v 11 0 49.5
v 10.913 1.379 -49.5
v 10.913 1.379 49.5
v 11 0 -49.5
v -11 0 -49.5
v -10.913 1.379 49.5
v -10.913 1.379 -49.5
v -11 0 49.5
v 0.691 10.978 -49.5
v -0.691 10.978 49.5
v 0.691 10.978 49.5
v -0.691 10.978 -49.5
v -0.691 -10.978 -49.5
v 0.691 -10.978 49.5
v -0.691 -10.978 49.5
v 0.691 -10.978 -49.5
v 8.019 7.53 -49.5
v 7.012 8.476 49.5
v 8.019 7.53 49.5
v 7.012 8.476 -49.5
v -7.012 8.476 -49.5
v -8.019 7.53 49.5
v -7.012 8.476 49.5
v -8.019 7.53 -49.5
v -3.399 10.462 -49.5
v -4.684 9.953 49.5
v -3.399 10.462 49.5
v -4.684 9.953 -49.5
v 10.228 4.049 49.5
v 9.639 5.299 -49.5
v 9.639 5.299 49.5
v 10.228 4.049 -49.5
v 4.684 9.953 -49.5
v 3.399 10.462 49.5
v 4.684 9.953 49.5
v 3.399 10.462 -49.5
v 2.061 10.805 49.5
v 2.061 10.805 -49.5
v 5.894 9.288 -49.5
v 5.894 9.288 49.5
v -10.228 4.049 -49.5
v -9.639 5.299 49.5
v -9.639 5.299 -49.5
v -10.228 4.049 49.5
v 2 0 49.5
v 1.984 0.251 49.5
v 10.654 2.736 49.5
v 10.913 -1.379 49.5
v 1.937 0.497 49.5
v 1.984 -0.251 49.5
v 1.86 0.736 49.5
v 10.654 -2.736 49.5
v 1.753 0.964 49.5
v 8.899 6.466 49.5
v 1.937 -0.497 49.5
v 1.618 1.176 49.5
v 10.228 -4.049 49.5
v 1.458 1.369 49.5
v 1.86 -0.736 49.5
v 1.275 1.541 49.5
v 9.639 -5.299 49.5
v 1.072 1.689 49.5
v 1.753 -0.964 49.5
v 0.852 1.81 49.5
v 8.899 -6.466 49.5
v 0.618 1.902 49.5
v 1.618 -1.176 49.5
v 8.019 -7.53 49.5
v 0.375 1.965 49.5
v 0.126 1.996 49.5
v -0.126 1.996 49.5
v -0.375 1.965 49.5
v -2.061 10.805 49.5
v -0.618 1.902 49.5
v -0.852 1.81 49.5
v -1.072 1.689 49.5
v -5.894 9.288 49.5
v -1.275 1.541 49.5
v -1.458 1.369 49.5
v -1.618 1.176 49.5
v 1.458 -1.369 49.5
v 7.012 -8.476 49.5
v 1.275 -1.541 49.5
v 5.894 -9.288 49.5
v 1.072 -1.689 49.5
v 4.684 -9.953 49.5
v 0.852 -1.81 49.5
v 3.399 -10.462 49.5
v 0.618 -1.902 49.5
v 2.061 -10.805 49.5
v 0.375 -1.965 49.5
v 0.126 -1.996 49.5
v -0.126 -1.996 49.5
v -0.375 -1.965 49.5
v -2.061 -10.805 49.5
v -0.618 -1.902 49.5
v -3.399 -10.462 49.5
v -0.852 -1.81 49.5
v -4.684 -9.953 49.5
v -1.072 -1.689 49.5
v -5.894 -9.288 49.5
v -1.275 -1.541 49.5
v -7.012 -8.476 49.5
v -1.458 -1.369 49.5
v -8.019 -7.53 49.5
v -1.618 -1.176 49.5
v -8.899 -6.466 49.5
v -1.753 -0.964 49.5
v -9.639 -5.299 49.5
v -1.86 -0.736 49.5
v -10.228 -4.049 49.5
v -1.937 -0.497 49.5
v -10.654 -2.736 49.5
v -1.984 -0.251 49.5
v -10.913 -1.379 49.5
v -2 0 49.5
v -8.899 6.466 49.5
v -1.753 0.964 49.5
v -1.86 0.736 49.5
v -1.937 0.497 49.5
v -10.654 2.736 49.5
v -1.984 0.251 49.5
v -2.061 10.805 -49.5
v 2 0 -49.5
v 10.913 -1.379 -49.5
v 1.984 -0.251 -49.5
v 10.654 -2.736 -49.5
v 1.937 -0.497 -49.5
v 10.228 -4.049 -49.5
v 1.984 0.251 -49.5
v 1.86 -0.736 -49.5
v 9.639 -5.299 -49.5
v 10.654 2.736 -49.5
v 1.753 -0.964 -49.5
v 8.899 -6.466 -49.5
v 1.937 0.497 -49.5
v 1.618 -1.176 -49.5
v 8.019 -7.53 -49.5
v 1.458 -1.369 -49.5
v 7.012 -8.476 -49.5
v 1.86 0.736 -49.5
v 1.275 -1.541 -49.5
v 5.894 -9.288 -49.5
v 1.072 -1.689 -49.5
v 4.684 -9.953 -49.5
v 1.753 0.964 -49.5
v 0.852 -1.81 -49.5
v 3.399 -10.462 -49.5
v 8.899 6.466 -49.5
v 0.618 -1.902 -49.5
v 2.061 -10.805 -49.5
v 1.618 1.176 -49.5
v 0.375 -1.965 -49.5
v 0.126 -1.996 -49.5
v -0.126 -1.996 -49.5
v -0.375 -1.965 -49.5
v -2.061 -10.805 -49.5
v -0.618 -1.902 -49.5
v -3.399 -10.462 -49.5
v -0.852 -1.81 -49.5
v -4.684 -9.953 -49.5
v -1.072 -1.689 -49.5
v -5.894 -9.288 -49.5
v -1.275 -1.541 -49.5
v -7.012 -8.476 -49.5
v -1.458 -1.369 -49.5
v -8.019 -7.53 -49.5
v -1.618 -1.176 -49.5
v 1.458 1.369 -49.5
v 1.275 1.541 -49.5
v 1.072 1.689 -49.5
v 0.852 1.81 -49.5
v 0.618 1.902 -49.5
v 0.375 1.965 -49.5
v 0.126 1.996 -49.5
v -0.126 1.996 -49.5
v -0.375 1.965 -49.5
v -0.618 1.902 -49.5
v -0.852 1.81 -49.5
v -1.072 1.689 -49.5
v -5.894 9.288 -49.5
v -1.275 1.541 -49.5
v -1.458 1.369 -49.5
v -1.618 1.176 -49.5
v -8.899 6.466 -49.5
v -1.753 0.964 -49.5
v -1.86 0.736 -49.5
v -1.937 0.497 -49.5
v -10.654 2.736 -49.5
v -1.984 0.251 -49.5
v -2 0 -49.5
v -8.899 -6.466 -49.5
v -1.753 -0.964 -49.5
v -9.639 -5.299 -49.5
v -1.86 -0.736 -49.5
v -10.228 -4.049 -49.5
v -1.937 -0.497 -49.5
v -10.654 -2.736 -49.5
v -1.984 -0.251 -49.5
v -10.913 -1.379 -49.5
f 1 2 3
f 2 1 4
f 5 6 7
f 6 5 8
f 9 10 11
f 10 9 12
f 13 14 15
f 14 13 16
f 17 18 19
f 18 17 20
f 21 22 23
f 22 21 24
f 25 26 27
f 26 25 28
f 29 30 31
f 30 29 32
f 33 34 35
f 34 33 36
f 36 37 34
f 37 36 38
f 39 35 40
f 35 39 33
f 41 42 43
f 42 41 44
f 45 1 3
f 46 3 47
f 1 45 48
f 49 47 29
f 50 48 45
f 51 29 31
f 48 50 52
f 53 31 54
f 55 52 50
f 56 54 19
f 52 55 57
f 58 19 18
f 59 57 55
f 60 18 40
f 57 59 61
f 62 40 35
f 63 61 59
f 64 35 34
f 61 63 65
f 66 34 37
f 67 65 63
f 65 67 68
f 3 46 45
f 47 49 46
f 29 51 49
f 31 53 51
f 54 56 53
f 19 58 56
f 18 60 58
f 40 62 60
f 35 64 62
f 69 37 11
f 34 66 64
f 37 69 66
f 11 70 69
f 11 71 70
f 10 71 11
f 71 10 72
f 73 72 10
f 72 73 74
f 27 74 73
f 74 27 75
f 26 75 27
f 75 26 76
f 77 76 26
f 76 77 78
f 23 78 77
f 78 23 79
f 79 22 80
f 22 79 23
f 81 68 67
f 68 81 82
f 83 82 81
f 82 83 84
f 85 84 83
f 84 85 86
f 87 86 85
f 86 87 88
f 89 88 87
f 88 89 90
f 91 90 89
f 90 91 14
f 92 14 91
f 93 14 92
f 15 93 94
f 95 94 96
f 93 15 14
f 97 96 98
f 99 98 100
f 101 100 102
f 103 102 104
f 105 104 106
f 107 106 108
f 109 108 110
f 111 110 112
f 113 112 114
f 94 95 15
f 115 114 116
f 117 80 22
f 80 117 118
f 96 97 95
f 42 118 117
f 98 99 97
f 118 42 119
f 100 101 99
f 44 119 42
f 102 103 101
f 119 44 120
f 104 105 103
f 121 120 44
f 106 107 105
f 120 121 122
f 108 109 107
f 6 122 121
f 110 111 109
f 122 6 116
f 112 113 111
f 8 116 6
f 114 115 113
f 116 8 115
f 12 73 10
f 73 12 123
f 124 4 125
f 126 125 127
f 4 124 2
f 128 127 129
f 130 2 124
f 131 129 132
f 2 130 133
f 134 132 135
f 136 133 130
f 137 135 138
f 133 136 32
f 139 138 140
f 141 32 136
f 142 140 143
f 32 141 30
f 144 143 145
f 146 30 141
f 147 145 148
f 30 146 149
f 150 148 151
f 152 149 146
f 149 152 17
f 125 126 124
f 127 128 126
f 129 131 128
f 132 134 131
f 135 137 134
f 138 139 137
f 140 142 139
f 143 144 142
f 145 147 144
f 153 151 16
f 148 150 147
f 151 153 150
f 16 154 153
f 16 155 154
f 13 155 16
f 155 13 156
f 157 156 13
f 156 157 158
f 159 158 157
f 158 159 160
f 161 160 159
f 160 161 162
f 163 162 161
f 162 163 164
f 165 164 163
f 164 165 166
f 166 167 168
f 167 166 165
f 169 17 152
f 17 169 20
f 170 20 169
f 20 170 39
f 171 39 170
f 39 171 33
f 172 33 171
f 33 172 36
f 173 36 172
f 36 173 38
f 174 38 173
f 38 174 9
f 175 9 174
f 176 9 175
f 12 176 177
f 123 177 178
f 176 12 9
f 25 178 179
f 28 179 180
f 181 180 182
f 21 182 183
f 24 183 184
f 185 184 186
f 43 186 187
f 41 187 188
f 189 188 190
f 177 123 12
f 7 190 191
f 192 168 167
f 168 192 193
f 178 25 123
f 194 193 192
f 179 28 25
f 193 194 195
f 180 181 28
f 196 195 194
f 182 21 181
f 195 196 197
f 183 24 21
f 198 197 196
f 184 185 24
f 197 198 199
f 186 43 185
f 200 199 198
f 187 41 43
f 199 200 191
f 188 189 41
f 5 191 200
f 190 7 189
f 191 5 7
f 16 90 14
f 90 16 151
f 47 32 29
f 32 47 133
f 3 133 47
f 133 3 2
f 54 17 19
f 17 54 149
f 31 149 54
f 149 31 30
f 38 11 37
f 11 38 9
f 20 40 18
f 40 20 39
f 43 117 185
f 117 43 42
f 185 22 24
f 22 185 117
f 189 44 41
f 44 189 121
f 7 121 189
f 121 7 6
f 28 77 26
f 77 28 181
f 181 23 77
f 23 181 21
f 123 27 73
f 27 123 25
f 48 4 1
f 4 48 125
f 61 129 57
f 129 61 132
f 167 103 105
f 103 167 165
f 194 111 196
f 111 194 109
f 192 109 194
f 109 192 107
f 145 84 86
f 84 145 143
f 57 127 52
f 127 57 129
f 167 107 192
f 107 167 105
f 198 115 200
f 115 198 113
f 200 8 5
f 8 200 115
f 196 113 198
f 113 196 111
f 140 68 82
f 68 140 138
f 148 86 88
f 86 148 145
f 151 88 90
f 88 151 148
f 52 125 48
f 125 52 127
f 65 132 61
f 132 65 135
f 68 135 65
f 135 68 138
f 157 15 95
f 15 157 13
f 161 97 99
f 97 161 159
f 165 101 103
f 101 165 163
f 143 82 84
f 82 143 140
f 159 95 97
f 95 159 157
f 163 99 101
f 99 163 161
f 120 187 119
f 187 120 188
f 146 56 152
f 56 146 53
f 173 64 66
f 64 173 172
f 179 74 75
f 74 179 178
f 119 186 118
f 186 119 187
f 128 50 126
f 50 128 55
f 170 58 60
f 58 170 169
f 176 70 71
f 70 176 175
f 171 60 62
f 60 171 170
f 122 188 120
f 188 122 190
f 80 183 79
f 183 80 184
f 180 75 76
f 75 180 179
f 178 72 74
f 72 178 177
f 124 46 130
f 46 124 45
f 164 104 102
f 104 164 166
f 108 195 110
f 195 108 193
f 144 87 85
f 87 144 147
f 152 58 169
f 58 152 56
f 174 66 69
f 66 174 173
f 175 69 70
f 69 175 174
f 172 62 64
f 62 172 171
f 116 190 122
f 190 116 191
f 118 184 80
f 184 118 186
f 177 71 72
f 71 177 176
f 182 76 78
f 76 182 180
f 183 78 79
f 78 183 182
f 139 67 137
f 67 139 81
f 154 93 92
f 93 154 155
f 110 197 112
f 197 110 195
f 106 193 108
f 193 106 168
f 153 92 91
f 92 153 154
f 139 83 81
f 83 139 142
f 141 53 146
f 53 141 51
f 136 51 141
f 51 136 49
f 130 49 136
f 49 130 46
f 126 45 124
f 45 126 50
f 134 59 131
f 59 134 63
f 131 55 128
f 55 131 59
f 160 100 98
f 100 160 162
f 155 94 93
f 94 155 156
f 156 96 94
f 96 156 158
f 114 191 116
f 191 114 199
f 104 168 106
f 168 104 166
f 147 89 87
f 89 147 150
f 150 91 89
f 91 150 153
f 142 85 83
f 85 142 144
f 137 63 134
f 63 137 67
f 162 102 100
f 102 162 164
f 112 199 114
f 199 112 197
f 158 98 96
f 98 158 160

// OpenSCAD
$fn = 50;


difference() {
	union() {
		translate(v = [0, 0, -49.5000000000]) {
			cylinder(h = 99, r = 11.0000000000);
		}
	}
	union() {
		translate(v = [0, 0, -100.0000000000]) {
			cylinder(h = 200, r = 2);
		}
	}
}
